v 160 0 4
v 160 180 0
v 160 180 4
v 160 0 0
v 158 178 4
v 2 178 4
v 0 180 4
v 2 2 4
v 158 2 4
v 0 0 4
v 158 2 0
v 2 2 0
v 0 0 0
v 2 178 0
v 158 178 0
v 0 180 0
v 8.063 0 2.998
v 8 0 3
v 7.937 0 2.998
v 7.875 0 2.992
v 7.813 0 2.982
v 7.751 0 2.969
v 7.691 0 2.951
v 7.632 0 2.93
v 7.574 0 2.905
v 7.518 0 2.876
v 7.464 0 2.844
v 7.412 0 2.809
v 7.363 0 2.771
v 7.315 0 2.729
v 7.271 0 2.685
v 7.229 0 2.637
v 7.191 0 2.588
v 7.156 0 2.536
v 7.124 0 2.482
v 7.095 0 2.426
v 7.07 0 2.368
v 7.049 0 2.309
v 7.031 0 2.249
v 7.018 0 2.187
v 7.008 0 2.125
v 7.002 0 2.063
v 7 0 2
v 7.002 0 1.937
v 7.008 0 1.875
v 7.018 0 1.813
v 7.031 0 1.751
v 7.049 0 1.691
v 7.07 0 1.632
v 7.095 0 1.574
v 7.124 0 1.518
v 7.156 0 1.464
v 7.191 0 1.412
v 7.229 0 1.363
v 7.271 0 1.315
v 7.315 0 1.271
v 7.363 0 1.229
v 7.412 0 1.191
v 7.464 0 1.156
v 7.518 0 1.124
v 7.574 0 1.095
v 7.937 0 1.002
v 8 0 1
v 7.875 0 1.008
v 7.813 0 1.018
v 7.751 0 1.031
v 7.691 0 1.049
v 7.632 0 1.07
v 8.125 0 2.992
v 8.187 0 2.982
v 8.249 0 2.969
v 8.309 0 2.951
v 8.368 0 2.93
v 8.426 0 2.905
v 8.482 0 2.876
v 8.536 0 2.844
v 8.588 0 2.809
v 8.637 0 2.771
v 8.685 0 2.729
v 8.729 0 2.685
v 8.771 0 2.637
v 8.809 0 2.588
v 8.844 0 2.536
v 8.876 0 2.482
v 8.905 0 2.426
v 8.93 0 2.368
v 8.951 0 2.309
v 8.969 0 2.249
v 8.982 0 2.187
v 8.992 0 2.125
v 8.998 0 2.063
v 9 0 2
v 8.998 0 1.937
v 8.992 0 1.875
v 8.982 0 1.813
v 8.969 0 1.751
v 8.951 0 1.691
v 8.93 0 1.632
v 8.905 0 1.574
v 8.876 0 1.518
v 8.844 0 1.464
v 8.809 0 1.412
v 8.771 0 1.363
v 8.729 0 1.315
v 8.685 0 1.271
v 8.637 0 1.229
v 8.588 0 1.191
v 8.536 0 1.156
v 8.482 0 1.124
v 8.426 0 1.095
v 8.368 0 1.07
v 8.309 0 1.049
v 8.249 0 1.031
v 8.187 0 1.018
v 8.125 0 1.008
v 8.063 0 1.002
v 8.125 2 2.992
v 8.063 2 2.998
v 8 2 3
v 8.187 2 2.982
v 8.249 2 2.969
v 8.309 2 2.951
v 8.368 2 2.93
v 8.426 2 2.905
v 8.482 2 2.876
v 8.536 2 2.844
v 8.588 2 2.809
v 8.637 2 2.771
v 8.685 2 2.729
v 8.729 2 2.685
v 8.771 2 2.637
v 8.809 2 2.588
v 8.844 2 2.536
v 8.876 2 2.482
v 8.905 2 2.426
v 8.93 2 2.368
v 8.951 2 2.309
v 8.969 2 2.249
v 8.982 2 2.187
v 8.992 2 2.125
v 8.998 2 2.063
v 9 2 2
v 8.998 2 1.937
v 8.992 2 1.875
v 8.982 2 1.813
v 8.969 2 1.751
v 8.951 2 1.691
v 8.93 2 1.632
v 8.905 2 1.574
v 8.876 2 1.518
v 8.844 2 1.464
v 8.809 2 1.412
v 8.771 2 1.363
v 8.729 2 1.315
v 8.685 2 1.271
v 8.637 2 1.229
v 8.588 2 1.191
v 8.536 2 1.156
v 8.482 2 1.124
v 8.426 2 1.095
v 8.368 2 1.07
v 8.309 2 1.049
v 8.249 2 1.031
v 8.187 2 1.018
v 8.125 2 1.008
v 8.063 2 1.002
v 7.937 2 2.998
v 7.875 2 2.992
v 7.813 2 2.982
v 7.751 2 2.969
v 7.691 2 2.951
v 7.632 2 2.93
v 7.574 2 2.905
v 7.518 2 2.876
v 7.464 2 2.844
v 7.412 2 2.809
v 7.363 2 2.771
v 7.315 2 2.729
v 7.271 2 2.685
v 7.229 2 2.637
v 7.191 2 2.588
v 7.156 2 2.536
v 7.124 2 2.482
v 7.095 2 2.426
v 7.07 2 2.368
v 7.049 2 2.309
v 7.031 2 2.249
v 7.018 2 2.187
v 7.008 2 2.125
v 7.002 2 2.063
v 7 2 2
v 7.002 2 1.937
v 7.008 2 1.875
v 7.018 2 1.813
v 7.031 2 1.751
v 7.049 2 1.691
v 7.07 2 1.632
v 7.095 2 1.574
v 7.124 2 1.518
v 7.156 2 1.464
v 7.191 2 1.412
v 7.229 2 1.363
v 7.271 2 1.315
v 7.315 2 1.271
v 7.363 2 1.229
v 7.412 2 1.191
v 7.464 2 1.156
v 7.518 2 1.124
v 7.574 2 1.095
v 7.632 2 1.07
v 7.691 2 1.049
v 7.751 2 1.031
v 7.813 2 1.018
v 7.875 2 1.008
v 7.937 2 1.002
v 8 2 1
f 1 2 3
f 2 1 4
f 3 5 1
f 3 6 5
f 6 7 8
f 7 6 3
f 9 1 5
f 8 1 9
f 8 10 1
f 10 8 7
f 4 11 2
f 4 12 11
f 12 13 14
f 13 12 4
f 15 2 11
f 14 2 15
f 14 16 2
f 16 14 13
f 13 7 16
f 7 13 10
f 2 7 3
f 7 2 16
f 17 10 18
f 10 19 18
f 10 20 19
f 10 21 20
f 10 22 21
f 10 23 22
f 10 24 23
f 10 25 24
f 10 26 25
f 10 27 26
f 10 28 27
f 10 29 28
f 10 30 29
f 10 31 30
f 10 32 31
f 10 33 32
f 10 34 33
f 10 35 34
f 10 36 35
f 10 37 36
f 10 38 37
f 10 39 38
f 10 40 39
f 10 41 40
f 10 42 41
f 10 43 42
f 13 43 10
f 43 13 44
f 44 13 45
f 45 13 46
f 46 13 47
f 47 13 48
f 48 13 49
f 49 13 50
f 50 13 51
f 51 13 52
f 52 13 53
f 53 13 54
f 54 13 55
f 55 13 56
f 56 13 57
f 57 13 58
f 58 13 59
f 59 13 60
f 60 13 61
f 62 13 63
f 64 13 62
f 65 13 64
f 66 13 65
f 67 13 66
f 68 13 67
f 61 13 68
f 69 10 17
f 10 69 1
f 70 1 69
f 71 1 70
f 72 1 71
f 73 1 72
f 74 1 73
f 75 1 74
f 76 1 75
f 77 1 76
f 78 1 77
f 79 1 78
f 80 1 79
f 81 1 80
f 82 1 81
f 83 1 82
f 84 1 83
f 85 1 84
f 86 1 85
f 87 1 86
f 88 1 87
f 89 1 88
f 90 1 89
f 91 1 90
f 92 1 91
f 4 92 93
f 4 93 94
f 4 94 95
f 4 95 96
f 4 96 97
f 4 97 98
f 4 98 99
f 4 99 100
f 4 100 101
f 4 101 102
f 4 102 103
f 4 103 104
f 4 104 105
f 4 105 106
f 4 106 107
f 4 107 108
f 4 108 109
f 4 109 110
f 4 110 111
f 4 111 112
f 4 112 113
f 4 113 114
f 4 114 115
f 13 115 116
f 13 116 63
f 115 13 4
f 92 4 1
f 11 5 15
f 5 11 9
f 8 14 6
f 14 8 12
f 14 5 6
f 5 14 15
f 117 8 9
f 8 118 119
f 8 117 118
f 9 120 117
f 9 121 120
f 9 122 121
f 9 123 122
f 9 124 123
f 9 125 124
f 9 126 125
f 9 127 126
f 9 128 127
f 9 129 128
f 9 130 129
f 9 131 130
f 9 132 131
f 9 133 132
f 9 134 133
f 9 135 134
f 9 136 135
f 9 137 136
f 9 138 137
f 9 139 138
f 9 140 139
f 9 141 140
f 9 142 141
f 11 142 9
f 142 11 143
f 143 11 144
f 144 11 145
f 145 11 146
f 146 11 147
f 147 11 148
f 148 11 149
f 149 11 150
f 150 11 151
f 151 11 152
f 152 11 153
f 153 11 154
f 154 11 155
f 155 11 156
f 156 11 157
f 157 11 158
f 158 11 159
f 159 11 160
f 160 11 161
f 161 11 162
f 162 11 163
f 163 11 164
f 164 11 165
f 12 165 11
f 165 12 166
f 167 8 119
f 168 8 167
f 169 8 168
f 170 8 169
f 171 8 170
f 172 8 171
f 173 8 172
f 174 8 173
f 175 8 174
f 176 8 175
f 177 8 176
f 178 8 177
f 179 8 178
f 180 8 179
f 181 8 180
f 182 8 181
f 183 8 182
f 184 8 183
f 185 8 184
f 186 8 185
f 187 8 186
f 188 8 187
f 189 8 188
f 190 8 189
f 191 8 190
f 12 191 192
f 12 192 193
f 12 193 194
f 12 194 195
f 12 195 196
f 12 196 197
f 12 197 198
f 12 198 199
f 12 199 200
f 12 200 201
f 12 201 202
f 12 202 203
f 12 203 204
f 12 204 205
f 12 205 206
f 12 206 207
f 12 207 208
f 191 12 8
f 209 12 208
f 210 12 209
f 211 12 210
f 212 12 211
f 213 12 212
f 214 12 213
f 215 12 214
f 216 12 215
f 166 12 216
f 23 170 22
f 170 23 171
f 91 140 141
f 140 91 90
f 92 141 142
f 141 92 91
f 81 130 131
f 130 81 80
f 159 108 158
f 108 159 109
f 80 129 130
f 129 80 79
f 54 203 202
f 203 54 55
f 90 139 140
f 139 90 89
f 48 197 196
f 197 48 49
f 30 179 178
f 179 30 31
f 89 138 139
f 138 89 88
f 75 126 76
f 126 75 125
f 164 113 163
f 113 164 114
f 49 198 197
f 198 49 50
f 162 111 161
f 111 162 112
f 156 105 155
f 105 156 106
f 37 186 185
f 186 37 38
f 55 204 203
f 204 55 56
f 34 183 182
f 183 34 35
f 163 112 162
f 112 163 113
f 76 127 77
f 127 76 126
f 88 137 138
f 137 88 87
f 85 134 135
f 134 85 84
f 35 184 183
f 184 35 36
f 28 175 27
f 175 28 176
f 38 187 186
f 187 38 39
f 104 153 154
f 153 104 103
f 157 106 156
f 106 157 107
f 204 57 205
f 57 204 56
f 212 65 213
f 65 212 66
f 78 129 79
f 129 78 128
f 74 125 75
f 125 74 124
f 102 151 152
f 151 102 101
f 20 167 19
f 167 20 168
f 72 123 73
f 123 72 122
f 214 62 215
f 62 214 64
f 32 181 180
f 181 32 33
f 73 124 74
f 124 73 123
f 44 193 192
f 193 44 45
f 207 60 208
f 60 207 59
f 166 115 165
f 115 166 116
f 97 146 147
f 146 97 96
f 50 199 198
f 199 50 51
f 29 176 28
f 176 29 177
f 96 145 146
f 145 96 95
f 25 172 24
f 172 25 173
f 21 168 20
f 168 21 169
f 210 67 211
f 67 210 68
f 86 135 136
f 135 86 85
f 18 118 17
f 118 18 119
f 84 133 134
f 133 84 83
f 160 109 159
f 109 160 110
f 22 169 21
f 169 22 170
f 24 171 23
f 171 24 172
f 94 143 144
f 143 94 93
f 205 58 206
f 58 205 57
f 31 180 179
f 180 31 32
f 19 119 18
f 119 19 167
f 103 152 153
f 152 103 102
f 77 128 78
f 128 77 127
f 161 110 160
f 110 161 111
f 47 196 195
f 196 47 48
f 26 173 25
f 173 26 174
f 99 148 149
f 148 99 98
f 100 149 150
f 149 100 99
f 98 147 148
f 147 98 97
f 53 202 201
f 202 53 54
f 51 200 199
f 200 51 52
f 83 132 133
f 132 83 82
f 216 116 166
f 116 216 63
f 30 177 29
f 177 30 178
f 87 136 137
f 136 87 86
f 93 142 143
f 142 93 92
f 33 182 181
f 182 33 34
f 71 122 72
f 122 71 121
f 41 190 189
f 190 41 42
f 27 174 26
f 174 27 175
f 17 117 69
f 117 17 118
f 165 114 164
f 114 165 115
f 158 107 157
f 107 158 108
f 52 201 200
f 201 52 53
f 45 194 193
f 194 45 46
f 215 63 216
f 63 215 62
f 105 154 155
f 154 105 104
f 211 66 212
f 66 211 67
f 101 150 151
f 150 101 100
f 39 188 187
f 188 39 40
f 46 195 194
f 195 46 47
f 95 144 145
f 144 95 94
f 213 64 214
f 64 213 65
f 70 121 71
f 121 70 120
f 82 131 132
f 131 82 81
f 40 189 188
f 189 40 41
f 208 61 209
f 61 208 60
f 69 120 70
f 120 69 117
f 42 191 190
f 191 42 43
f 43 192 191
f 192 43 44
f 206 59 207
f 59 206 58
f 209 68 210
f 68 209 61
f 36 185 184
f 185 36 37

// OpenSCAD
difference(){
cube([160,180,4]);
translate([2,2,-1]) cube([156,176,6]);
  translate([8,4,2]) rotate([90,0,0])  cylinder(5,r=1,$fn=100);
}
